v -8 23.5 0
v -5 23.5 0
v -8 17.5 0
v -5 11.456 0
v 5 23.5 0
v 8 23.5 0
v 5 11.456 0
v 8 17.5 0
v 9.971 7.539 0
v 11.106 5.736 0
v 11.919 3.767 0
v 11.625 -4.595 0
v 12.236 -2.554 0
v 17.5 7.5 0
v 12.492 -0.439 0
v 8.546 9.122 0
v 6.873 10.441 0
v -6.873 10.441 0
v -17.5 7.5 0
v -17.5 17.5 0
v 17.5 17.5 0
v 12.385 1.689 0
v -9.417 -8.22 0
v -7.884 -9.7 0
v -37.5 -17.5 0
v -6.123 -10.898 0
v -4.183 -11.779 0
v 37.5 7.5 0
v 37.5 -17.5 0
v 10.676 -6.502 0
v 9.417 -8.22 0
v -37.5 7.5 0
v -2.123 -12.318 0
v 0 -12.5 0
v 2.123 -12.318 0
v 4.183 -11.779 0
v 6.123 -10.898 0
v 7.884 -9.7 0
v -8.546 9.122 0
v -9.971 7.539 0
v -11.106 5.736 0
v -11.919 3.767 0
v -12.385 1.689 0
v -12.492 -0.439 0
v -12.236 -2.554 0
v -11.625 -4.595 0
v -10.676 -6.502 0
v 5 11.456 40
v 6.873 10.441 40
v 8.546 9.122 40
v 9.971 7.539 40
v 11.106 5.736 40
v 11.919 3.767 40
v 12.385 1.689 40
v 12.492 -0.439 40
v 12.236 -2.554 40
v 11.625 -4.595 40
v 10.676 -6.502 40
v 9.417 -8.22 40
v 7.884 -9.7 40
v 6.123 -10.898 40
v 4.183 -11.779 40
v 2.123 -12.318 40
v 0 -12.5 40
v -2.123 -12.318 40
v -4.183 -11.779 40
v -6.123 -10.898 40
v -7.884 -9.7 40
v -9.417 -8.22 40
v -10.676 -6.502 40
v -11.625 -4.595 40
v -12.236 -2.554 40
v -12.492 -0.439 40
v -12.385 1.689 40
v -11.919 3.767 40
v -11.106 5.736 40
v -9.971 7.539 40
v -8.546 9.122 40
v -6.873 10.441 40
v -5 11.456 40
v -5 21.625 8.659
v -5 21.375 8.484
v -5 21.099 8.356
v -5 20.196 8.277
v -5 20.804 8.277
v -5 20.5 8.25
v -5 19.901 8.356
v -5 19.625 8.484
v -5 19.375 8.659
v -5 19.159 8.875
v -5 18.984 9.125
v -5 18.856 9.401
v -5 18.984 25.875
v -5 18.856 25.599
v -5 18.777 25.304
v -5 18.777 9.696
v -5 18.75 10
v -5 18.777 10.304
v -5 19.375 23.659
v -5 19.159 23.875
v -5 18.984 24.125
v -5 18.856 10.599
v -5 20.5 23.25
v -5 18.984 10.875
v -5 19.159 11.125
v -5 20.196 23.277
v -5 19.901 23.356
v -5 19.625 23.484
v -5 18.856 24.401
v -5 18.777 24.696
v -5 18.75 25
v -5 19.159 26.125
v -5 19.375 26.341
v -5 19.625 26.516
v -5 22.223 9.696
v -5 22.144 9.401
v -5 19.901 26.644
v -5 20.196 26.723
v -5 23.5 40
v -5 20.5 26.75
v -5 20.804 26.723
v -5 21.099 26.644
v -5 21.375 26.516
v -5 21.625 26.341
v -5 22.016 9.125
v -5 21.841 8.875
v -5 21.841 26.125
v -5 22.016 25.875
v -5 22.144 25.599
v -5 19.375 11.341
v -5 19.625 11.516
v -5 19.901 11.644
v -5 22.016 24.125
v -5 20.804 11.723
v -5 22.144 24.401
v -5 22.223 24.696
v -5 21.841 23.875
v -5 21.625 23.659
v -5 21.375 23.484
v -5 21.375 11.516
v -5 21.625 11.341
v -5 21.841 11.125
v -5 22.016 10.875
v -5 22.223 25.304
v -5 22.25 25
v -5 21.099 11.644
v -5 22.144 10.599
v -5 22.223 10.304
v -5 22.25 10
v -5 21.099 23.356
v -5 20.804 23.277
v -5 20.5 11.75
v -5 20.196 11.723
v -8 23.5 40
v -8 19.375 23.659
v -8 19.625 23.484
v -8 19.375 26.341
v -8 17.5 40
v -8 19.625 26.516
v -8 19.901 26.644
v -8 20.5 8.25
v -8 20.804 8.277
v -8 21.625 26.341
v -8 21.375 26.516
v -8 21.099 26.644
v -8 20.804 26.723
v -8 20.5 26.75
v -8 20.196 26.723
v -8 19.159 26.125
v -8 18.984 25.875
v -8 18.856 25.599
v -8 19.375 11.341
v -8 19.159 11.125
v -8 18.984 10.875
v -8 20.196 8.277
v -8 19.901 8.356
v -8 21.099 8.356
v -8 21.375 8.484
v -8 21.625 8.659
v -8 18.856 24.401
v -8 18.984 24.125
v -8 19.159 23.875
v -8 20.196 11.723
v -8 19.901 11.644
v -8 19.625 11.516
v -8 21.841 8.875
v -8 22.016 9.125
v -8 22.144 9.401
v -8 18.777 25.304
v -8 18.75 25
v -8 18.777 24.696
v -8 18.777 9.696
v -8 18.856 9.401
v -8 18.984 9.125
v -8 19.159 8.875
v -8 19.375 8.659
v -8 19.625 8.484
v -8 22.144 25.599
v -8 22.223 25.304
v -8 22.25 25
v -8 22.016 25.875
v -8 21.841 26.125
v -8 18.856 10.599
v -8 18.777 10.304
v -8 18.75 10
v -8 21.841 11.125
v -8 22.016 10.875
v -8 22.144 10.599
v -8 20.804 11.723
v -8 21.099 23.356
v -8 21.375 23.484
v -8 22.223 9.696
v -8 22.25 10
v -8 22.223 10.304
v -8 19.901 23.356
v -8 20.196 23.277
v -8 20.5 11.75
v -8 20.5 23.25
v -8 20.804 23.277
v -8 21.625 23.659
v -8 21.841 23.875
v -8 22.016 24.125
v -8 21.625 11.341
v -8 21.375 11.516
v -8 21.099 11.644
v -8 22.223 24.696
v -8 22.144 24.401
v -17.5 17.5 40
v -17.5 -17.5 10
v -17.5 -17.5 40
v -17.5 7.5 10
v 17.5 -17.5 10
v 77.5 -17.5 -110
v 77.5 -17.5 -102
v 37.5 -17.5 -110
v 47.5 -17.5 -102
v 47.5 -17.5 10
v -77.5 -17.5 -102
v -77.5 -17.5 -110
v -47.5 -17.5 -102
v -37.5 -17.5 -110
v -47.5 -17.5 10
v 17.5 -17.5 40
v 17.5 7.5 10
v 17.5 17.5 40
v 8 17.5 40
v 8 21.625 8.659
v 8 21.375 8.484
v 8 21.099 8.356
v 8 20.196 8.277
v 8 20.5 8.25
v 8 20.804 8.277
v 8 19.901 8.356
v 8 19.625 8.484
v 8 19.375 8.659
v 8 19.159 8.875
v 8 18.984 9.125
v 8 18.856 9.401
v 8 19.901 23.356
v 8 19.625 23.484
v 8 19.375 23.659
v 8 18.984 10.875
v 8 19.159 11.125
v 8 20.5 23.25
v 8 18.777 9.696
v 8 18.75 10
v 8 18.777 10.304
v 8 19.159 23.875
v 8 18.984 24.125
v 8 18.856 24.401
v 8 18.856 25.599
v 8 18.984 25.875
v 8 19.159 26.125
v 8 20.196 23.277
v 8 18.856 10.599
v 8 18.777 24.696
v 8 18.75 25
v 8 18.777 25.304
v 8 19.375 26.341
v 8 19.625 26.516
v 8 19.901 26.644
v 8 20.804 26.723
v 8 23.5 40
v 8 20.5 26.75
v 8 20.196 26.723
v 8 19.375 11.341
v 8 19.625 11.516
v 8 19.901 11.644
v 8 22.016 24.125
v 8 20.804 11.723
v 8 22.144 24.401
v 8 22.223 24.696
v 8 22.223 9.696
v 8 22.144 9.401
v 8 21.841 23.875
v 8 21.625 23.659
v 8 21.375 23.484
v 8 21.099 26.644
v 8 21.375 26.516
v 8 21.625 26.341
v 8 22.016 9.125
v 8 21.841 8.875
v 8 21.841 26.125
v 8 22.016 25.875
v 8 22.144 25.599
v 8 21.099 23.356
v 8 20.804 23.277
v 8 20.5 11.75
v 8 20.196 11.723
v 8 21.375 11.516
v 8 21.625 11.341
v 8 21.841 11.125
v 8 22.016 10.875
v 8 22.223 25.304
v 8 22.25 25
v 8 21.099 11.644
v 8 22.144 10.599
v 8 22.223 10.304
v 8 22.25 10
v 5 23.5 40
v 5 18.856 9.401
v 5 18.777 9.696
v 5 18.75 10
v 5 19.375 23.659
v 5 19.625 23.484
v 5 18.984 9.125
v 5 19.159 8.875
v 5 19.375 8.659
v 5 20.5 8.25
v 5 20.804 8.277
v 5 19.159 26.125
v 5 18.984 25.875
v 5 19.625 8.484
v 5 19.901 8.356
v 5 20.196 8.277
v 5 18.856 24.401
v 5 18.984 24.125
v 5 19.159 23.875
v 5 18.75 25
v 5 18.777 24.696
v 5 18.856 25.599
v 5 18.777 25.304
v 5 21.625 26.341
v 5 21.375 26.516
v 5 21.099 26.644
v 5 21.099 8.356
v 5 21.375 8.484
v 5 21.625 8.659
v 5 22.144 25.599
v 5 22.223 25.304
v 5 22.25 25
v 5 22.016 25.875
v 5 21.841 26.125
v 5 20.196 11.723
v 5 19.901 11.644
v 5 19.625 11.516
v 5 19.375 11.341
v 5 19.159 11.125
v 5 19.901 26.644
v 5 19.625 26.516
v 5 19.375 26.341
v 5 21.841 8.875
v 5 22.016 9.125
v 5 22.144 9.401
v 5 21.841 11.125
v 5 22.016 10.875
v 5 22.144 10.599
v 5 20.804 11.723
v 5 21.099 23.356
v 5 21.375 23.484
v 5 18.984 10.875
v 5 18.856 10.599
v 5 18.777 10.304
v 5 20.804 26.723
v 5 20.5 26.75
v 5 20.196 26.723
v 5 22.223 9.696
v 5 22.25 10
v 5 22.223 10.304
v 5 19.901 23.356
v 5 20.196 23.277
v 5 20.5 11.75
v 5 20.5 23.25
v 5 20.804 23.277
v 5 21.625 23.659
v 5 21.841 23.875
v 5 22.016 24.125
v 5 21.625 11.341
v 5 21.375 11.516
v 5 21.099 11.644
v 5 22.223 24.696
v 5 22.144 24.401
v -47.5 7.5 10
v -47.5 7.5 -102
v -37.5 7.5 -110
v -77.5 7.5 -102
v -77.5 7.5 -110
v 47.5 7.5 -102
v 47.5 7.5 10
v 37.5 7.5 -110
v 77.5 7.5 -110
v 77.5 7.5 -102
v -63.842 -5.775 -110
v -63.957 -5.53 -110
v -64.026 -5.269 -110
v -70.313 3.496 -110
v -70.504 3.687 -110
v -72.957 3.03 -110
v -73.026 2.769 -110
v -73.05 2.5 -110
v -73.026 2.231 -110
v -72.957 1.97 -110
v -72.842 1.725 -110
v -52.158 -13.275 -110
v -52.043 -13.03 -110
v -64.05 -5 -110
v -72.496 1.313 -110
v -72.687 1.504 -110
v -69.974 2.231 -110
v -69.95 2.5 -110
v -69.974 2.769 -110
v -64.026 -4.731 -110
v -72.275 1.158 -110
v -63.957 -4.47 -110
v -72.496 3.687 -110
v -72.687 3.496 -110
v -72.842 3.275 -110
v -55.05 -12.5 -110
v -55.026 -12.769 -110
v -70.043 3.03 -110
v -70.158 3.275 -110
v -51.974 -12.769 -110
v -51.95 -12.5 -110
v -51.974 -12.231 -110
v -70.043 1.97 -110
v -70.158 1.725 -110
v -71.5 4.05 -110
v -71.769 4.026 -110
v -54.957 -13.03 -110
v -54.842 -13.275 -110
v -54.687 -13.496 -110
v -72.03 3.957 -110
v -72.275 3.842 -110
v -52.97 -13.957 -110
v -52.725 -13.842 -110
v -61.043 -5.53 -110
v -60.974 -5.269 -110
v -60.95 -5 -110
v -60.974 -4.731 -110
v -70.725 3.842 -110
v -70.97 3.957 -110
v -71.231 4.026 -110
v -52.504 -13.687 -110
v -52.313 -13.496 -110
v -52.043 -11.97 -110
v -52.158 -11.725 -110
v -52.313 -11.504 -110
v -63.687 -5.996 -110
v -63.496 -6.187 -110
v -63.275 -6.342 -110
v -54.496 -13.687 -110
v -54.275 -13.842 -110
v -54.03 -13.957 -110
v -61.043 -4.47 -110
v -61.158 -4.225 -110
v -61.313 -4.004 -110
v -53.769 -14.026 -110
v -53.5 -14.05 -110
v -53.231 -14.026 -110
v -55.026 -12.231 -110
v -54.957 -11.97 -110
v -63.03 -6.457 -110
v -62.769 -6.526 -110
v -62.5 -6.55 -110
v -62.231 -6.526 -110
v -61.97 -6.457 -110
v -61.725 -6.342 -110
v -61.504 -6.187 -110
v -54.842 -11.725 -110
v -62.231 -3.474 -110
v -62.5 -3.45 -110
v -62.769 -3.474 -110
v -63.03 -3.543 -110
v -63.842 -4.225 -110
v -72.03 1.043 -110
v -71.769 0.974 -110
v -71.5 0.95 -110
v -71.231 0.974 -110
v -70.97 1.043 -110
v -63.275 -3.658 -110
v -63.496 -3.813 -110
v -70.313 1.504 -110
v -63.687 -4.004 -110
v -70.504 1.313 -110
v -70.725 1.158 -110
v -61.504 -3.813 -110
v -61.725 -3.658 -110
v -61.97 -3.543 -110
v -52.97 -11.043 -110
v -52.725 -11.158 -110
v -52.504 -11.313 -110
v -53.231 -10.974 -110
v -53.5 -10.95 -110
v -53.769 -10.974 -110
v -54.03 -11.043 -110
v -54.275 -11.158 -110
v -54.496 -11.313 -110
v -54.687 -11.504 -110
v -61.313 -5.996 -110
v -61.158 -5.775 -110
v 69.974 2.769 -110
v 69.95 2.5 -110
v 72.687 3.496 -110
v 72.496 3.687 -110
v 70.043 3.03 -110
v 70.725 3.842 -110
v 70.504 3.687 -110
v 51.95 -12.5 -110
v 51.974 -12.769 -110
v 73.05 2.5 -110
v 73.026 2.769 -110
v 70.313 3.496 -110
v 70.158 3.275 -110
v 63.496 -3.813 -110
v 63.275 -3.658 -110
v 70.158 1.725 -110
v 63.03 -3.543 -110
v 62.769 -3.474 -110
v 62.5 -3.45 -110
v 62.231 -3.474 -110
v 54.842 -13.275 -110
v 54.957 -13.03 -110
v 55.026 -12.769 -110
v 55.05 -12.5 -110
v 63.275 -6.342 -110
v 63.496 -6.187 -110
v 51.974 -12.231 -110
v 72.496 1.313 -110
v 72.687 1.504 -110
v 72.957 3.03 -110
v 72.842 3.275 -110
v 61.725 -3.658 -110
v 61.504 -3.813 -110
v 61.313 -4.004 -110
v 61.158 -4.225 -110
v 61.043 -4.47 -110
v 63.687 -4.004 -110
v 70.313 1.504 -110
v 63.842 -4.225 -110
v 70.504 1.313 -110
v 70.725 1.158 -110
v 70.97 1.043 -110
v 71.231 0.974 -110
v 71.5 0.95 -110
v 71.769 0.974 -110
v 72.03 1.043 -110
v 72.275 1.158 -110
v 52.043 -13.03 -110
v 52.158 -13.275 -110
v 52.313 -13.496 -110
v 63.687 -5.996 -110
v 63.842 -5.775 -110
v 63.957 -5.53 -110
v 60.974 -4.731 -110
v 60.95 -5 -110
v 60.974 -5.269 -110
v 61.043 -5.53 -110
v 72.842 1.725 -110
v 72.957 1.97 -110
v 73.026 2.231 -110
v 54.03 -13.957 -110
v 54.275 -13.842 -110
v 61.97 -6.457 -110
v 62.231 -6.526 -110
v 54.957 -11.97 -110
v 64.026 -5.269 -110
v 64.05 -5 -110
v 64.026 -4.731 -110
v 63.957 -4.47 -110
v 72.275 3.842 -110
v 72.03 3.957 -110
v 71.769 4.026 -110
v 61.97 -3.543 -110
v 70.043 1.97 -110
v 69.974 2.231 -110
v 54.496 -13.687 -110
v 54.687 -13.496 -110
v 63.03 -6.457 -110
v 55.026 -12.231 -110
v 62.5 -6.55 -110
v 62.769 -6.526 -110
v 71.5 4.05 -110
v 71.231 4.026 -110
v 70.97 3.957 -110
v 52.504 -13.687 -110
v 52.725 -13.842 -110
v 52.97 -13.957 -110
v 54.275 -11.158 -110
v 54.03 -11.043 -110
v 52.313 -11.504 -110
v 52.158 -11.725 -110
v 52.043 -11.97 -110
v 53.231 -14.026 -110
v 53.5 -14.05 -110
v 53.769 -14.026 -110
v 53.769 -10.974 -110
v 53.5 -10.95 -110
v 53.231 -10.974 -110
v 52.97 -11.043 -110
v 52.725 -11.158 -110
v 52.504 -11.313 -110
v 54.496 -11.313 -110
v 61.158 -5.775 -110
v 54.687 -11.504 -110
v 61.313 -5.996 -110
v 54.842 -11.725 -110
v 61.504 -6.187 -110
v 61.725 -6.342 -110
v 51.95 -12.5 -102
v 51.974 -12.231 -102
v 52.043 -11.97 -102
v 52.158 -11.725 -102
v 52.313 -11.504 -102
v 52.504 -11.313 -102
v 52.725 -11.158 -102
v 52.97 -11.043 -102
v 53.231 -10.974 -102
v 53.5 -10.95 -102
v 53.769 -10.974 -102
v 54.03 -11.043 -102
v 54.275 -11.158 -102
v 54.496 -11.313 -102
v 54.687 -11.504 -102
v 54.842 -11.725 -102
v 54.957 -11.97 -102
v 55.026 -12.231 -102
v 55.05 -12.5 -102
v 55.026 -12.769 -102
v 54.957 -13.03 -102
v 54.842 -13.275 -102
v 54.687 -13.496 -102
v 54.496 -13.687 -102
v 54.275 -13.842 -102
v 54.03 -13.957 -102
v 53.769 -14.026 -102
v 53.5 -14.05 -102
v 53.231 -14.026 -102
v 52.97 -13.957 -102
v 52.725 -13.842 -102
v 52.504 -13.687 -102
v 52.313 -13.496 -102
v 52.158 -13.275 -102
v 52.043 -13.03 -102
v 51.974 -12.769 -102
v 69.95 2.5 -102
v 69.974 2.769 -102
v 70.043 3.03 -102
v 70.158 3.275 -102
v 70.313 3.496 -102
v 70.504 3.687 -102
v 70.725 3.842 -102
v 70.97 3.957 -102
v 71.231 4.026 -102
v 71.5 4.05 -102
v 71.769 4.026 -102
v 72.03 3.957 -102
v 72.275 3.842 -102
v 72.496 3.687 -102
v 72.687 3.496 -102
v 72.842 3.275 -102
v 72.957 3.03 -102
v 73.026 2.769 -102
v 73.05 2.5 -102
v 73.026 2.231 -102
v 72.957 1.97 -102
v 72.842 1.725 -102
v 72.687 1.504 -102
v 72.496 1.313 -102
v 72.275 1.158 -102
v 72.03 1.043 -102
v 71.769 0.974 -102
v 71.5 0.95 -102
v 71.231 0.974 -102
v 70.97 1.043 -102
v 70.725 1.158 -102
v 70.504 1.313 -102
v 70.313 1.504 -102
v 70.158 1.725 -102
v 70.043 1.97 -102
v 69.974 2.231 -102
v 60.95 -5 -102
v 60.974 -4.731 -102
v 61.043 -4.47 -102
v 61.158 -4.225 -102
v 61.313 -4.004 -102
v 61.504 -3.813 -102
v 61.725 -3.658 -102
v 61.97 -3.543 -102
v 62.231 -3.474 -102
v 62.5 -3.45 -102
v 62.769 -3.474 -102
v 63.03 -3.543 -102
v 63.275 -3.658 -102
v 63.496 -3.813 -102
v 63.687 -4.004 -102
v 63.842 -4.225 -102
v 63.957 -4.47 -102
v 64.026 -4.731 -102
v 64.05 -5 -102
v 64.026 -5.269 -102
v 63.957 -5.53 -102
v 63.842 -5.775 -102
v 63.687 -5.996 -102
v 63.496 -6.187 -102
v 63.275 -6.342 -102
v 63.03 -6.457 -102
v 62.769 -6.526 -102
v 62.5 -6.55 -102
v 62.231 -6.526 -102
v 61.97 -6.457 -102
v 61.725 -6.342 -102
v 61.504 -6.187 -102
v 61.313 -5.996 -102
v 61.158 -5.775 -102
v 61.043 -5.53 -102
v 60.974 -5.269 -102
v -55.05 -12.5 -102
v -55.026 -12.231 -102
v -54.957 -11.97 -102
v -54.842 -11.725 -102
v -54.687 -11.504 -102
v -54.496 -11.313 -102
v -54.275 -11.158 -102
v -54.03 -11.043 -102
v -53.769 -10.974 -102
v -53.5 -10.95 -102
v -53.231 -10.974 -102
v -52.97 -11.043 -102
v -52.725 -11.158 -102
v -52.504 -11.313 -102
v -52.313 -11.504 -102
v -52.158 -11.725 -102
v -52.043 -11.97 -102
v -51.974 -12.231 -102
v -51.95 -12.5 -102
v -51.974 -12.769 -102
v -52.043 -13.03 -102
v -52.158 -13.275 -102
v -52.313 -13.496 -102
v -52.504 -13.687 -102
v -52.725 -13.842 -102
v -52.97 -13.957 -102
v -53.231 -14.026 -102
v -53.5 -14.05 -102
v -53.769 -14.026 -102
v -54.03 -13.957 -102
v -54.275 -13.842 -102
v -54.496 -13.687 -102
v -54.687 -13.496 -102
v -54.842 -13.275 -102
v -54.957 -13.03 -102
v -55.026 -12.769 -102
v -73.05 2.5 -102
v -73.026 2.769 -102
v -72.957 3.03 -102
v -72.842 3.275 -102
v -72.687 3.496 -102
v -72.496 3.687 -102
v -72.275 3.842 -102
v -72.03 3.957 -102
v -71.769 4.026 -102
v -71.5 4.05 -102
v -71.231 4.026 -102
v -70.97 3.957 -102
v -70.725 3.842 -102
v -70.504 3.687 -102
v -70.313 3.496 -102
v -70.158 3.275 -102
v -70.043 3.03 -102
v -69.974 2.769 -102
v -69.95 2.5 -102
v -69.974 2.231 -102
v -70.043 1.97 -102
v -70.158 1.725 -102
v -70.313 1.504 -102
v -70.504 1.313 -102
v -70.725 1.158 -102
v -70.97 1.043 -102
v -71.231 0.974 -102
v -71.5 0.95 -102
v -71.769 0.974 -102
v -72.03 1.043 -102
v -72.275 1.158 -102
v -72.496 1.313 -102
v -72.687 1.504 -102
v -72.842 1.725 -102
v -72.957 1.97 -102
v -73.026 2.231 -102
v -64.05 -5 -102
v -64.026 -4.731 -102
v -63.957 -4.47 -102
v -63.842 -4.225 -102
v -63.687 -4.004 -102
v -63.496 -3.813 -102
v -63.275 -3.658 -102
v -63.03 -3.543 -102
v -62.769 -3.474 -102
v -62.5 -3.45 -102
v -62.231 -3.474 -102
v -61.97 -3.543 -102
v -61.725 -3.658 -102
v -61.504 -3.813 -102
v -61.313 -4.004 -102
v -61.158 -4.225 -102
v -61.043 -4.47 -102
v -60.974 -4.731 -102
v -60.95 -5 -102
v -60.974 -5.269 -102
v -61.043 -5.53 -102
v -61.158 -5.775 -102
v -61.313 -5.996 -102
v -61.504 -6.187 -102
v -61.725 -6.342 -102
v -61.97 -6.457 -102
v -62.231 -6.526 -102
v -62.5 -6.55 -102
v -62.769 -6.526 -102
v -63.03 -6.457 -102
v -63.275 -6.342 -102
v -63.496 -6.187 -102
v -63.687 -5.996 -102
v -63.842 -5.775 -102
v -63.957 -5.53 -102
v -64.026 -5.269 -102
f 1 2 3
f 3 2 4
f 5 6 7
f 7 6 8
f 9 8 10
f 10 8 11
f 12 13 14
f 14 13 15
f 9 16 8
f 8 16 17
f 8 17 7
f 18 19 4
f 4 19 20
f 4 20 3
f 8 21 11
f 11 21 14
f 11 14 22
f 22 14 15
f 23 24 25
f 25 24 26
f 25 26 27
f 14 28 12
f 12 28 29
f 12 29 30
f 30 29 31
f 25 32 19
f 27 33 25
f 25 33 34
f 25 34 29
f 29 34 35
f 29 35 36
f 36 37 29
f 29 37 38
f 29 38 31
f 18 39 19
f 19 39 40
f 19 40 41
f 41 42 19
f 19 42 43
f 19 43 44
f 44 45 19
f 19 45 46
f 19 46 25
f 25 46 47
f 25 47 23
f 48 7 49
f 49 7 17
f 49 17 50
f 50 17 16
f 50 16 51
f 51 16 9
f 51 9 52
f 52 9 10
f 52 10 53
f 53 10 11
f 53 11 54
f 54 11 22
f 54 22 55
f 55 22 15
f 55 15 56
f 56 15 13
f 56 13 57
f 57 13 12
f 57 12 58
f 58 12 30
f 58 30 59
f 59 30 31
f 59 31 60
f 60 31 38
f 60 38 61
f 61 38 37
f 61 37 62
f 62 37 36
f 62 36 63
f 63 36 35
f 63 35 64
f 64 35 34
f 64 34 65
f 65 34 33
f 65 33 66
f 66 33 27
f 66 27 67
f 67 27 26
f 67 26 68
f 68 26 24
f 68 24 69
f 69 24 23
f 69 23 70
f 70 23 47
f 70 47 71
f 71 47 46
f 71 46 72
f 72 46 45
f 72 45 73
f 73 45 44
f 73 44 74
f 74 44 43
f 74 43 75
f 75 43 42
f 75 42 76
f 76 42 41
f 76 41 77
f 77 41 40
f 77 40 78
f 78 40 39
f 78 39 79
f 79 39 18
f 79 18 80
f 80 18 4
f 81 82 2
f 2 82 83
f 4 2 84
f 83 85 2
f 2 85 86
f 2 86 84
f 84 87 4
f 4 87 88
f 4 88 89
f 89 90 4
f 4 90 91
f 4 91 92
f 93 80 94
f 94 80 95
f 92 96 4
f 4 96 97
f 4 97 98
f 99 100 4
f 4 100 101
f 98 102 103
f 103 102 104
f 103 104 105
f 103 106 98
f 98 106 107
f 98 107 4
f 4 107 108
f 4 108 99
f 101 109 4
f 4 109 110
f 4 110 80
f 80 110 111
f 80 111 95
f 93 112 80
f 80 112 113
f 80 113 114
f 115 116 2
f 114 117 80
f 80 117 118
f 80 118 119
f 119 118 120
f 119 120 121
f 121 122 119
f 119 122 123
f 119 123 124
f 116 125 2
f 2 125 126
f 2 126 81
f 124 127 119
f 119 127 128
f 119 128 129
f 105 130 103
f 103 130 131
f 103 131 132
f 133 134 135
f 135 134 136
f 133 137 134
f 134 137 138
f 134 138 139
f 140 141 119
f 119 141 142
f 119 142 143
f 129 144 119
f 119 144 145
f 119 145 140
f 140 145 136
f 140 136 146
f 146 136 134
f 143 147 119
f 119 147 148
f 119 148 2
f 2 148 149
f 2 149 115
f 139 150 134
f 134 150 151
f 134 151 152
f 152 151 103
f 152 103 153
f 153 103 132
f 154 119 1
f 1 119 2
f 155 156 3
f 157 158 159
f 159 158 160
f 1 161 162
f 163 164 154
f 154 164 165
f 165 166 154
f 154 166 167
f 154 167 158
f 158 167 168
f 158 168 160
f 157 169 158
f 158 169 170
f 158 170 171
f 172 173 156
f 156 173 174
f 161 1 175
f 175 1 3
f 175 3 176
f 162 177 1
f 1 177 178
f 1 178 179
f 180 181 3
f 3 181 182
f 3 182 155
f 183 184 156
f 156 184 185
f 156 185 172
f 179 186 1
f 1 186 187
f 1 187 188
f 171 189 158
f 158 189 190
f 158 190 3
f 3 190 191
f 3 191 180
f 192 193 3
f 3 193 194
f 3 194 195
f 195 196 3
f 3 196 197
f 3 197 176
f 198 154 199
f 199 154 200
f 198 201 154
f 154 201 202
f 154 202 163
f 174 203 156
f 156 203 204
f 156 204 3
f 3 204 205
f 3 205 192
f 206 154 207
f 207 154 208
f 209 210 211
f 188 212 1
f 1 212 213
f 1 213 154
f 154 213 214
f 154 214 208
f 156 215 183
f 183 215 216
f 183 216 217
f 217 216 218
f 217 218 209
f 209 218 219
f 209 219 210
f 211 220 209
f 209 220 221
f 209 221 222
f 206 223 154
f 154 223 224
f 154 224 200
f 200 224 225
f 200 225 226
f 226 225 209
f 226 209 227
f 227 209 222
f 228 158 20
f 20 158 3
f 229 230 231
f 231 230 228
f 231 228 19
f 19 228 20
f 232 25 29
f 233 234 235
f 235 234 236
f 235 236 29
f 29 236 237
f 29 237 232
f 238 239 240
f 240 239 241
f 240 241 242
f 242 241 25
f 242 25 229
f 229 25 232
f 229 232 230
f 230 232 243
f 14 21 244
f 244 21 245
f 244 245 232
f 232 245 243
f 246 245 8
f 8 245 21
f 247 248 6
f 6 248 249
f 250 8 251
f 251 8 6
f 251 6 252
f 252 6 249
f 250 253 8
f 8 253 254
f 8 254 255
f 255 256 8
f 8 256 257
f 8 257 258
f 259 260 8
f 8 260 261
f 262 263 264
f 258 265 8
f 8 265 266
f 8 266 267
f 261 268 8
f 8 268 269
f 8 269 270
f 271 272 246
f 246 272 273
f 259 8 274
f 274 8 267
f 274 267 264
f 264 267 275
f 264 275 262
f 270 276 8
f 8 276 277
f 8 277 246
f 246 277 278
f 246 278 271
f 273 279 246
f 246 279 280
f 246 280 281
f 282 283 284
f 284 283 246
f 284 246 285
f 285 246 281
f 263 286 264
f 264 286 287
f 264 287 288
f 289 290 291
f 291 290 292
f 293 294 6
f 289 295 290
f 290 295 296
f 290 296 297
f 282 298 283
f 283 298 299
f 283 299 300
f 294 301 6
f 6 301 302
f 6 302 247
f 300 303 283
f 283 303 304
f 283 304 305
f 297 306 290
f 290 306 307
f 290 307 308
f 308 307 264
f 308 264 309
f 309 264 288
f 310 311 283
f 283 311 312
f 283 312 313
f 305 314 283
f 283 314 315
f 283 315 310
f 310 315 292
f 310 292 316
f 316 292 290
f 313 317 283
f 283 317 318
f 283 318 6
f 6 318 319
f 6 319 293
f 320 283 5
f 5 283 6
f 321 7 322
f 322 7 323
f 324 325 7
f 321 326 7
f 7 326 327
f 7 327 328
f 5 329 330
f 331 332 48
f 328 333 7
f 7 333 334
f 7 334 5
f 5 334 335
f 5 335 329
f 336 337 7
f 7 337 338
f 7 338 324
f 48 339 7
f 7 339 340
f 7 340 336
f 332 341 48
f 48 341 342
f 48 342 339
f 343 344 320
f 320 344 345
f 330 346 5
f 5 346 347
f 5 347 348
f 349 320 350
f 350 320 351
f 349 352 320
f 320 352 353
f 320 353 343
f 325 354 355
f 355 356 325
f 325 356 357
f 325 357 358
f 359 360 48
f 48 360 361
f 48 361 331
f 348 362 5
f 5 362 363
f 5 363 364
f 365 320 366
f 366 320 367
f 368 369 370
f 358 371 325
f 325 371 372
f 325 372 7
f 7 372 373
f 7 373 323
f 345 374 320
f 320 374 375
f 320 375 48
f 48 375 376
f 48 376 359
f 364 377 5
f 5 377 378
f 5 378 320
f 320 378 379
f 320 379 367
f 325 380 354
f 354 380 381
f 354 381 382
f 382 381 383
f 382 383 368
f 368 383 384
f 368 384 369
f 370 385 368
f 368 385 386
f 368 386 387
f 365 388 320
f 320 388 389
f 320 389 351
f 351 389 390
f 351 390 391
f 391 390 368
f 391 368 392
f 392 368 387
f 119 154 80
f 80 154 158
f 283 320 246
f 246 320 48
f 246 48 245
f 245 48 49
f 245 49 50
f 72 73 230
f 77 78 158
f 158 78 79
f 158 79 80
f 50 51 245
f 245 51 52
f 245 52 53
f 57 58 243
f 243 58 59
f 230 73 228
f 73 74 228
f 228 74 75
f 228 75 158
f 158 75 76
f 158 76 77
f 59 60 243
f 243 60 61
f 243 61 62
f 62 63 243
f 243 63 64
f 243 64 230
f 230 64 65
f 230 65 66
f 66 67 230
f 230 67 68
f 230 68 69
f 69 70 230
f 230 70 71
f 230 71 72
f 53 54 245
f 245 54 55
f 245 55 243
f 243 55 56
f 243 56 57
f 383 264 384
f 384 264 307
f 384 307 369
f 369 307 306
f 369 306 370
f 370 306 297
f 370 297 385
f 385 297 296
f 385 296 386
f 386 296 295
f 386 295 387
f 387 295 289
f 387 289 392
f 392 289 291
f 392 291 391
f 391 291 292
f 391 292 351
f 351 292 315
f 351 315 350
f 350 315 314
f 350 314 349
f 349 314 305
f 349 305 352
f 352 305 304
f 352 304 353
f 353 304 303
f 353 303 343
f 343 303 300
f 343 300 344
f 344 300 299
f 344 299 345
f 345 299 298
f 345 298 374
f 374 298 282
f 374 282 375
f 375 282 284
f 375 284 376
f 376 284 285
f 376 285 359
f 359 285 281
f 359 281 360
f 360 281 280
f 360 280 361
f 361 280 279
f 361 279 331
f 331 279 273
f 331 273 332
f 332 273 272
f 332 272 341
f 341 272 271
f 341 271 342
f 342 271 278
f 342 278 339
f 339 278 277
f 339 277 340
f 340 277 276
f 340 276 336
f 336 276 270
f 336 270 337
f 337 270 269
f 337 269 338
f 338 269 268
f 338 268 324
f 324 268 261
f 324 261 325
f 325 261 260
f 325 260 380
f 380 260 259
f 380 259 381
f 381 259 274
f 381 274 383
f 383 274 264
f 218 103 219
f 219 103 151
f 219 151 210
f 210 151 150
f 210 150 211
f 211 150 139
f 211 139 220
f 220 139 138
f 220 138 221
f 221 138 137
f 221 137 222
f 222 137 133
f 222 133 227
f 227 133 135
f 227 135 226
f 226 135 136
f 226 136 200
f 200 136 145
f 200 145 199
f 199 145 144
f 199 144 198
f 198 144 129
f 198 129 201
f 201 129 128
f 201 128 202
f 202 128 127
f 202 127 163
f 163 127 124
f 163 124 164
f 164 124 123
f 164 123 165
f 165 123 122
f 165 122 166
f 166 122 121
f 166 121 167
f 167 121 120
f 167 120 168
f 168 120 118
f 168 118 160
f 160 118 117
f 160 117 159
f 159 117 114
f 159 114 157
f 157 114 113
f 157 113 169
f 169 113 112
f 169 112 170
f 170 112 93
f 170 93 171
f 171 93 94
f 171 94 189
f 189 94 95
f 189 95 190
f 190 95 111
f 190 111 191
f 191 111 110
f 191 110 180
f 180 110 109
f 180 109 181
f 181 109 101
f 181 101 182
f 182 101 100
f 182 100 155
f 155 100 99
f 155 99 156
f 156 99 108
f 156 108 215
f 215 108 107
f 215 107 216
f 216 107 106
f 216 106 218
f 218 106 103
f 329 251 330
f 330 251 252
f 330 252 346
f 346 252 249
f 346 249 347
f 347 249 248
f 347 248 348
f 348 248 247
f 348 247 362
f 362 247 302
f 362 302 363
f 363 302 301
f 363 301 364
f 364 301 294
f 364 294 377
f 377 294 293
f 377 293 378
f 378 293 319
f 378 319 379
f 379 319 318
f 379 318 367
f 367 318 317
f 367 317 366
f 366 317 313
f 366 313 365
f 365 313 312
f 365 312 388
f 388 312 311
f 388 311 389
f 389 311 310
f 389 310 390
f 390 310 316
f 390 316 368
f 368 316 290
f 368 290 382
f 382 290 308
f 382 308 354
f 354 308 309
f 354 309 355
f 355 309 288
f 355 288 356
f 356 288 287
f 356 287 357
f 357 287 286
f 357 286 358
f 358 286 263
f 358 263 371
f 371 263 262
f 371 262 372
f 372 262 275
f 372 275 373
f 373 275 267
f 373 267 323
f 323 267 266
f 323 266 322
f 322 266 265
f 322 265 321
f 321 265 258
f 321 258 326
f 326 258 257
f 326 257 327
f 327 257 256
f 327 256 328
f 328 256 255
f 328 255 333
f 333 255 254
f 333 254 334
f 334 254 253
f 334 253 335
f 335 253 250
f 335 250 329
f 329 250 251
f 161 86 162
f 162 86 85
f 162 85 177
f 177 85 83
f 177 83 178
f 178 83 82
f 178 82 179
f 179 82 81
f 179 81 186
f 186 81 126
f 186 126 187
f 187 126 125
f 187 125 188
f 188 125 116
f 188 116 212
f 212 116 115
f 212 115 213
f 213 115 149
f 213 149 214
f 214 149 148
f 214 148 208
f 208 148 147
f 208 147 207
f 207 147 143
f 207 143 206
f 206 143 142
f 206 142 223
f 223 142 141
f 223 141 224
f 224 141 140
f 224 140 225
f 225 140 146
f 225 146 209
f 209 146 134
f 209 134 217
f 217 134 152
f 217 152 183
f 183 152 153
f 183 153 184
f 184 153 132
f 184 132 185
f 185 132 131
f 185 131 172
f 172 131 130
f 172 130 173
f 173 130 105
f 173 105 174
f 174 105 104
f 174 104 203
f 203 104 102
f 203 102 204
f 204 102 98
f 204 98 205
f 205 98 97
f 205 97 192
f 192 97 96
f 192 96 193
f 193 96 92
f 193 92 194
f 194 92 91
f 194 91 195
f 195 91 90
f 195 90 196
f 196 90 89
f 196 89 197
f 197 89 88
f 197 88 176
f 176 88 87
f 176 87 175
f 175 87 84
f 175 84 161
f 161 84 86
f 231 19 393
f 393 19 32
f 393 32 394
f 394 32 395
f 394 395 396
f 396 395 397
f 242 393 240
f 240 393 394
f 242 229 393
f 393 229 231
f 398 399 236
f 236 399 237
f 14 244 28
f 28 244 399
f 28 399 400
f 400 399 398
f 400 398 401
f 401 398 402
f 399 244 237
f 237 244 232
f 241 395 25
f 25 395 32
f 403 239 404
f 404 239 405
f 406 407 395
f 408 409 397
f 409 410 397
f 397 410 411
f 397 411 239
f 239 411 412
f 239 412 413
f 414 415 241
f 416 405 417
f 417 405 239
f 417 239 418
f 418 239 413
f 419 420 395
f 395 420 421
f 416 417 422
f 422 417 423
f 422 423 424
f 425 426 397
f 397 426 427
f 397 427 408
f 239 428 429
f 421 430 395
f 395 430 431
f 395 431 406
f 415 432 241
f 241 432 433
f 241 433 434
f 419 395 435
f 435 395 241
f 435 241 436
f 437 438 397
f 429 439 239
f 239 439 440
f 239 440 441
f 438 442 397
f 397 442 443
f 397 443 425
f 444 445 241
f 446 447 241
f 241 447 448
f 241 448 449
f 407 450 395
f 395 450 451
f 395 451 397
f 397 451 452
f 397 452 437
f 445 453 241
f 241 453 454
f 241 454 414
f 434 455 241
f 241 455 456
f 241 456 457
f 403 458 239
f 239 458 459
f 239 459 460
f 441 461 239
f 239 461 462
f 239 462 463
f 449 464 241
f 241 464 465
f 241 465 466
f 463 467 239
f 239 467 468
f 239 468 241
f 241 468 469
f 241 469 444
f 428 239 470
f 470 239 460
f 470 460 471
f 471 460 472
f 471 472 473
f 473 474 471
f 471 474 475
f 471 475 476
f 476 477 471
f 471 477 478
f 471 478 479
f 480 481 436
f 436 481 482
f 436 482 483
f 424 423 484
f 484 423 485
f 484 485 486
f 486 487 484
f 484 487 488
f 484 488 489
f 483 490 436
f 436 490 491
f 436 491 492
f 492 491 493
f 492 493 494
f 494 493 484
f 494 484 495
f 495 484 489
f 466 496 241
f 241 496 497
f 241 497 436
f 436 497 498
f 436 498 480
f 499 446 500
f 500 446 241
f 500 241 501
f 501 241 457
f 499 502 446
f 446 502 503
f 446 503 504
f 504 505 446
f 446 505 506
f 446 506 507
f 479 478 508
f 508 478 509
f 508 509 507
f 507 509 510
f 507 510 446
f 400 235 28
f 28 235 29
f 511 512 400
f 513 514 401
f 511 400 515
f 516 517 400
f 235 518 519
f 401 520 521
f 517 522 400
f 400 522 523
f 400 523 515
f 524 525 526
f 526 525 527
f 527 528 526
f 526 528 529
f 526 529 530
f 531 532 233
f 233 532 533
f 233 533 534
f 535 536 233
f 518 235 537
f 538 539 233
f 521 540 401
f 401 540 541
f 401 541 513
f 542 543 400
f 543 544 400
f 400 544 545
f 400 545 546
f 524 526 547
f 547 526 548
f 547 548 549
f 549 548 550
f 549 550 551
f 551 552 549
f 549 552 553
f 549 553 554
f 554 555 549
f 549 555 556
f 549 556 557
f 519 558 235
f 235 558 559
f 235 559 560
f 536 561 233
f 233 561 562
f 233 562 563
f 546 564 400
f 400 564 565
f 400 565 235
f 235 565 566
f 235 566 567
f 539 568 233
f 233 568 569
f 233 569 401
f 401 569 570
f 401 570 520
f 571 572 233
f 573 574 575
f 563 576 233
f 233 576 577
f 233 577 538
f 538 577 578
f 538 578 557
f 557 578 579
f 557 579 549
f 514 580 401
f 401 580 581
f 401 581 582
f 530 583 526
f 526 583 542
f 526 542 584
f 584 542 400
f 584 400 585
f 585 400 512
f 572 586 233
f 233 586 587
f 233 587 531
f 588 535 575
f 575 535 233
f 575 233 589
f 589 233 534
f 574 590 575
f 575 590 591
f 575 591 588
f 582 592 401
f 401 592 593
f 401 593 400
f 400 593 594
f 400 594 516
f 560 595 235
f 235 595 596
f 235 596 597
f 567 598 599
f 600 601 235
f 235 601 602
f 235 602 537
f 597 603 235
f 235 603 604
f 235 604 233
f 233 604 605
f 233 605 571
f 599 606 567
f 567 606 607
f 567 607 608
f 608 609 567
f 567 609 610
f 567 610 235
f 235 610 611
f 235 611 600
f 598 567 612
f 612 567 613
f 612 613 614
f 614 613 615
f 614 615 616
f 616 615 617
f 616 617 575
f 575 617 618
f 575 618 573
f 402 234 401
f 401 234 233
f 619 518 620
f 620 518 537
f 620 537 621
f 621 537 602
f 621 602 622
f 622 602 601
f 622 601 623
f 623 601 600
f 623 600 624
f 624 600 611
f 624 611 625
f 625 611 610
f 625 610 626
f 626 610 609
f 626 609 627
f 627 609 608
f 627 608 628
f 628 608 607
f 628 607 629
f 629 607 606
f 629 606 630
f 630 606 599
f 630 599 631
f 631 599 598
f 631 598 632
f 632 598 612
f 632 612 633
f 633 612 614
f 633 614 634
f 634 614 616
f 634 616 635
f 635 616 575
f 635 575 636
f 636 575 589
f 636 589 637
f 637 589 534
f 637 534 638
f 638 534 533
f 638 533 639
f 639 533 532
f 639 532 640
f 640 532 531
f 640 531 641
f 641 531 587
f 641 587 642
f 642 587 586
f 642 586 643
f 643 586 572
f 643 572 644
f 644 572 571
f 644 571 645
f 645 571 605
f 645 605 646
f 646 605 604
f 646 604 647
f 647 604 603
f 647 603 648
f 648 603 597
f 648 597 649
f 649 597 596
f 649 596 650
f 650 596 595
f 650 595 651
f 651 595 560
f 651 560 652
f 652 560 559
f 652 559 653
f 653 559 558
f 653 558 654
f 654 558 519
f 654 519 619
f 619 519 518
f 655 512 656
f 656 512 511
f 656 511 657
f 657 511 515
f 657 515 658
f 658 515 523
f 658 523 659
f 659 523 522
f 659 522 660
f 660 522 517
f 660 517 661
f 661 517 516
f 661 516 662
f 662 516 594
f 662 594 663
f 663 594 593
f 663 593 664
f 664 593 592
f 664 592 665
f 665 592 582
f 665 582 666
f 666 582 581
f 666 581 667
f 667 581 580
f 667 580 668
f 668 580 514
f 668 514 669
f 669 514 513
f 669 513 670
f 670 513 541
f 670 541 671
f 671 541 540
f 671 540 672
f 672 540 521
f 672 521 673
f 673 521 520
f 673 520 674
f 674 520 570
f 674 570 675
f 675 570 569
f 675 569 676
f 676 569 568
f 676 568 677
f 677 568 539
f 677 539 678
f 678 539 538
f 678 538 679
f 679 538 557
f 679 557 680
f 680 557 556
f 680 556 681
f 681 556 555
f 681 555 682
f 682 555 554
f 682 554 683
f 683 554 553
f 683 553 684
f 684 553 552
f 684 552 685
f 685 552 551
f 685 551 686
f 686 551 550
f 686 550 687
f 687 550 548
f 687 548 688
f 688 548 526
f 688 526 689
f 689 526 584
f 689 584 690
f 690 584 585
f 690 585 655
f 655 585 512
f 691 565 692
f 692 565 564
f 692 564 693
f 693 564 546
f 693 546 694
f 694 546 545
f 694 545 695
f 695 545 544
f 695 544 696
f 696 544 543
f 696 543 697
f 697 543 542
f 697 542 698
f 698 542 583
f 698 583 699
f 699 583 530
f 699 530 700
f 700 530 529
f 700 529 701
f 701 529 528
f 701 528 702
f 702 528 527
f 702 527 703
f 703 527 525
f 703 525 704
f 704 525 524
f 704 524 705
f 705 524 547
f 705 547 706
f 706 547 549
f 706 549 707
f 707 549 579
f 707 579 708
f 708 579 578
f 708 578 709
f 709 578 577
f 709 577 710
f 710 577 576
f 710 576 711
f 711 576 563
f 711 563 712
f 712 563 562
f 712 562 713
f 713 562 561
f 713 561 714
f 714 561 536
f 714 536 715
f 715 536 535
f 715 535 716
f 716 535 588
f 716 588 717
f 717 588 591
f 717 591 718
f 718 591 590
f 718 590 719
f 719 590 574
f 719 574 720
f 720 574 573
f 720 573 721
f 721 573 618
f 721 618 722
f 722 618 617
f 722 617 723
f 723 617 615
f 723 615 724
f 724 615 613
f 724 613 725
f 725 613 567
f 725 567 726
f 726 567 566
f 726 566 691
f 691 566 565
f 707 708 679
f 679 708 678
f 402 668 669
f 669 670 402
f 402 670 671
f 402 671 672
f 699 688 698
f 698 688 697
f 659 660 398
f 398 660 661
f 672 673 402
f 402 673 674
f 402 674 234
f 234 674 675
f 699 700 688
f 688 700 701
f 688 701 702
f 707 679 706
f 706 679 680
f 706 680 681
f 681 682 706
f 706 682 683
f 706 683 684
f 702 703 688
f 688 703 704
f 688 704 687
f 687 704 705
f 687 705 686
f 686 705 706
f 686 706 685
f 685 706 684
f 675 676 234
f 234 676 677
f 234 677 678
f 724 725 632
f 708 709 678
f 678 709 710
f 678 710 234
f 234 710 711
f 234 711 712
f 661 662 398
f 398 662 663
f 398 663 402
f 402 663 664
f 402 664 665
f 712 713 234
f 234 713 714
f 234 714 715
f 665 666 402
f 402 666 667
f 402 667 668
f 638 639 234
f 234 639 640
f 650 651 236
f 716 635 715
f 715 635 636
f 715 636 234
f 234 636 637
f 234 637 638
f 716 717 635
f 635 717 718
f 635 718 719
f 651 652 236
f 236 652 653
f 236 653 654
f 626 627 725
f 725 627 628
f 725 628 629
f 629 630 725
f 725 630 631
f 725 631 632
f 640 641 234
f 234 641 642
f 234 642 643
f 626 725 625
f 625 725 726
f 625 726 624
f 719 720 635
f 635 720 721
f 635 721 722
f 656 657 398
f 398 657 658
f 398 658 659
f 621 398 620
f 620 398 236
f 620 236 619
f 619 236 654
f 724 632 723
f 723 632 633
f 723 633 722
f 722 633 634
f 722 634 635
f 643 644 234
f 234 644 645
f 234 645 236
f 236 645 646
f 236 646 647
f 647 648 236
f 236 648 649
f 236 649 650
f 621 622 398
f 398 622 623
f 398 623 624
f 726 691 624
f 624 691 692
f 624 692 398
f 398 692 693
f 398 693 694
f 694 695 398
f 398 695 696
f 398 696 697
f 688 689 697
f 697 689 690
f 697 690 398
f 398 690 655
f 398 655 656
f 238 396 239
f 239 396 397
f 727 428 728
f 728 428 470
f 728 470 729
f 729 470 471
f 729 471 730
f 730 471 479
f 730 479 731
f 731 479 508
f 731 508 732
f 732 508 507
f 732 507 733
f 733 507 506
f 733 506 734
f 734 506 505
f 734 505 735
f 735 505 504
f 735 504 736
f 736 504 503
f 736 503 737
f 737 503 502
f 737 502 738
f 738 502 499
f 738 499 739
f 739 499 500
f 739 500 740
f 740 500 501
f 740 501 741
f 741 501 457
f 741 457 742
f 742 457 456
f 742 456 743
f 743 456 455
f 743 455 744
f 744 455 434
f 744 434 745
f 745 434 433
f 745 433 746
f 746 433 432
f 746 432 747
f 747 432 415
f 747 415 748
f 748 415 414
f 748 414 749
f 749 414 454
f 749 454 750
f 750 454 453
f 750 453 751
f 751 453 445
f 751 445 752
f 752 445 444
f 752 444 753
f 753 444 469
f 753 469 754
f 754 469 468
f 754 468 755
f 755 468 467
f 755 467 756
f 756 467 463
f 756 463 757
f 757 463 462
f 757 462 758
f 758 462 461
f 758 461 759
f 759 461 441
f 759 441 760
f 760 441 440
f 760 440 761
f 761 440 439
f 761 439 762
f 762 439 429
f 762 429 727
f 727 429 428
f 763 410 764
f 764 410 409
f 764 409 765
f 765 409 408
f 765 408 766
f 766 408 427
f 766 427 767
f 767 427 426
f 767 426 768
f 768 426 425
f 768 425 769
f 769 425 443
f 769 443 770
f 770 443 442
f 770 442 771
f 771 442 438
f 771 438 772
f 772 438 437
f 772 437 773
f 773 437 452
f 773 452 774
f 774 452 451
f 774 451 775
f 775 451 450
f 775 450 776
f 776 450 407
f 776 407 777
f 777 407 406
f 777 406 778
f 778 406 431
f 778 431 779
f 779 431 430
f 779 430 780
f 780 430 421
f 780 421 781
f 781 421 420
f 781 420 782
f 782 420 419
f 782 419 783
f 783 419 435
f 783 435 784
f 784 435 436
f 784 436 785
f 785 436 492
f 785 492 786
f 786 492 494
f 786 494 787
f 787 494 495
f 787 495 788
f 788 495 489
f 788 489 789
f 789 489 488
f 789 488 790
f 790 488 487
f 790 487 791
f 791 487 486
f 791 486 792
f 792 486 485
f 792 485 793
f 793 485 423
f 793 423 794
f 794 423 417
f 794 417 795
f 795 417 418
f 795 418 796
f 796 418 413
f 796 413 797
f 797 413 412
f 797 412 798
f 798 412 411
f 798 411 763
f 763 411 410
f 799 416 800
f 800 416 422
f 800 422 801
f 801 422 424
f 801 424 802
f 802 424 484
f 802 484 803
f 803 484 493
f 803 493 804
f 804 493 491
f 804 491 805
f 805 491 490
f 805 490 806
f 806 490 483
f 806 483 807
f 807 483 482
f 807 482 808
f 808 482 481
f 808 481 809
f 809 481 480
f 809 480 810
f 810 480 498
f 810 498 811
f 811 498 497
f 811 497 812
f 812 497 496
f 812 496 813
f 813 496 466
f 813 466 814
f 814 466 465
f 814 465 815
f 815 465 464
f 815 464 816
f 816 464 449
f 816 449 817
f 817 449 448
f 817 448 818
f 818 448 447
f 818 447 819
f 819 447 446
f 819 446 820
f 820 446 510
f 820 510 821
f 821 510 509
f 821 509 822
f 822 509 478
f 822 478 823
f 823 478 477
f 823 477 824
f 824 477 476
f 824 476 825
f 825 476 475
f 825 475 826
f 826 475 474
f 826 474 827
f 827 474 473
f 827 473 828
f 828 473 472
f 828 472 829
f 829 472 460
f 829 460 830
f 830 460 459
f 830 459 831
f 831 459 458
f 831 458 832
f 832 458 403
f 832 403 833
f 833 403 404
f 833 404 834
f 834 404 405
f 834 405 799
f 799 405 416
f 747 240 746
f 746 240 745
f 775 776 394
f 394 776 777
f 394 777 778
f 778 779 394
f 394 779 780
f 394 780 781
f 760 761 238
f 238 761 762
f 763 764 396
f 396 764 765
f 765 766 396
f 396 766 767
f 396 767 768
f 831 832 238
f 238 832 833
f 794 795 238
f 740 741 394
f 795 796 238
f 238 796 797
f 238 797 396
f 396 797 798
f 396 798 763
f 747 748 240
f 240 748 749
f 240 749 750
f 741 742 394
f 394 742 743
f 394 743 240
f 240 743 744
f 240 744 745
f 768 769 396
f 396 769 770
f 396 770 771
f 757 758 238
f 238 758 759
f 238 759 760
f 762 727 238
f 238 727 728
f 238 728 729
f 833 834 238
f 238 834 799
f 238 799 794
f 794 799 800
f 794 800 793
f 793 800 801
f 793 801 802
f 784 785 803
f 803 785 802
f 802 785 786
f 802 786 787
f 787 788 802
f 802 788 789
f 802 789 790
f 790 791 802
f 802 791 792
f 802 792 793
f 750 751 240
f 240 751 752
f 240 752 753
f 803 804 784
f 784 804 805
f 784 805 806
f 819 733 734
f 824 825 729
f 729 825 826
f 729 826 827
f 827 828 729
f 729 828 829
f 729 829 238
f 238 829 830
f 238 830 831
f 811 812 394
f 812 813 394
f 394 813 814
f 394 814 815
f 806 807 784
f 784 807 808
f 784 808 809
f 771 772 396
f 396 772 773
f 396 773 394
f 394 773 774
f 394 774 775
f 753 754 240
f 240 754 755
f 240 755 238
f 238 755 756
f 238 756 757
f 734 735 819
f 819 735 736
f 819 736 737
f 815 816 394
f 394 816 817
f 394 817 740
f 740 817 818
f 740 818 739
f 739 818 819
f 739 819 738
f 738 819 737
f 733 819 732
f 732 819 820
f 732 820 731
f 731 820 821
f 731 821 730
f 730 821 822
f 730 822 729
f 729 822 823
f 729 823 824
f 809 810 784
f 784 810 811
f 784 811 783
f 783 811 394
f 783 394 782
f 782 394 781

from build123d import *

# Parameters (mm, degrees)
SKETCH1_W           = 3
SKETCH1_H           = 6
BOSS_EXTRUDE1_DEPTH = 40
SKETCH2_R           = 1.75
CUT_EXTRUDE1_DEPTH  = 20
SKETCH1_3_W         = 30
SKETCH1_3_H         = 25
BOSS_EXTRUDE2_DEPTH = 10
SKETCH1_5_W         = 10
SKETCH1_5_H         = 25
BOSS_EXTRUDE3_DEPTH = 110
BOSS_EXTRUDE8_START = -110
SKETCH1_8_W         = 30
SKETCH1_8_H         = 25
SKETCH1_8_R         = 1.55
BOSS_EXTRUDE8_DEPTH = 8


with BuildPart() as part:
    # Sketch1 → Boss-Extrude1 (new body)
    with BuildSketch(Plane.XY):
        with BuildLine():
            Line((5, 17.5), (5, 11.456439237))
            ThreePointArc((5, 11.456439237), (10.458250332, 6.846531969), (12.5, 0))
            ThreePointArc((12.5, 0), (-6.846531969, -10.458250332), (-5, 11.456439237))
            Line((-5, 11.456439237), (-5, 17.5))
            Line((-5, 17.5), (-8, 17.5))
            Line((-8, 17.5), (-17.5, 17.5))
            Line((-17.5, 17.5), (-17.5, 7.5))
            Line((-17.5, 7.5), (-17.5, -17.5))
            Line((-17.5, -17.5), (17.5, -17.5))
            Line((17.5, -17.5), (17.5, 7.5))
            Line((17.5, 7.5), (17.5, 17.5))
            Line((17.5, 17.5), (8, 17.5))
            Line((8, 17.5), (5, 17.5))
        make_face()
        with Locations((-6.5, 20.5)):
            Rectangle(SKETCH1_W, SKETCH1_H)
        with Locations((6.5, 20.5)):
            Rectangle(SKETCH1_W, SKETCH1_H)
    extrude(amount=BOSS_EXTRUDE1_DEPTH)

    # Sketch2 → Cut-Extrude1 (cut)
    with BuildSketch(Plane(origin=(8, 0, 0), x_dir=(0, 0, -1), z_dir=(1, 0, 0))):
        with Locations((-25, 20.5)):
            Circle(SKETCH2_R)
        with Locations((-10, 20.5)):
            Circle(SKETCH2_R)
    extrude(amount=-CUT_EXTRUDE1_DEPTH, mode=Mode.SUBTRACT)

    # Sketch1<3> → Boss-Extrude2 (add)
    with BuildSketch(Plane.XY):
        with Locations((32.5, -5)):
            Rectangle(SKETCH1_3_W, SKETCH1_3_H)
        with Locations((-32.5, -5)):
            Rectangle(SKETCH1_3_W, SKETCH1_3_H)
    extrude(amount=BOSS_EXTRUDE2_DEPTH)

    # Sketch1<5> → Boss-Extrude3 (add)
    with BuildSketch(Plane.XY):
        with Locations((-42.5, -5)):
            Rectangle(SKETCH1_5_W, SKETCH1_5_H)
        with Locations((42.5, -5)):
            Rectangle(SKETCH1_5_W, SKETCH1_5_H)
    extrude(amount=-BOSS_EXTRUDE3_DEPTH)

    # Sketch1<8> → Boss-Extrude8 (add)
    with BuildSketch(Plane.XY.offset(BOSS_EXTRUDE8_START)):
        with Locations((62.5, -5)):
            Rectangle(SKETCH1_8_W, SKETCH1_8_H)
        with Locations((53.5, -12.5)):
            Circle(SKETCH1_8_R, mode=Mode.SUBTRACT)
        with Locations((62.5, -5)):
            Circle(SKETCH1_8_R, mode=Mode.SUBTRACT)
        with Locations((71.5, 2.5)):
            Circle(SKETCH1_8_R, mode=Mode.SUBTRACT)
        with Locations((-62.5, -5)):
            Rectangle(SKETCH1_8_W, SKETCH1_8_H)
        with Locations((-53.5, -12.5)):
            Circle(SKETCH1_8_R, mode=Mode.SUBTRACT)
        with Locations((-62.5, -5)):
            Circle(SKETCH1_8_R, mode=Mode.SUBTRACT)
        with Locations((-71.5, 2.5)):
            Circle(SKETCH1_8_R, mode=Mode.SUBTRACT)
    extrude(amount=BOSS_EXTRUDE8_DEPTH)


solid = part.part
